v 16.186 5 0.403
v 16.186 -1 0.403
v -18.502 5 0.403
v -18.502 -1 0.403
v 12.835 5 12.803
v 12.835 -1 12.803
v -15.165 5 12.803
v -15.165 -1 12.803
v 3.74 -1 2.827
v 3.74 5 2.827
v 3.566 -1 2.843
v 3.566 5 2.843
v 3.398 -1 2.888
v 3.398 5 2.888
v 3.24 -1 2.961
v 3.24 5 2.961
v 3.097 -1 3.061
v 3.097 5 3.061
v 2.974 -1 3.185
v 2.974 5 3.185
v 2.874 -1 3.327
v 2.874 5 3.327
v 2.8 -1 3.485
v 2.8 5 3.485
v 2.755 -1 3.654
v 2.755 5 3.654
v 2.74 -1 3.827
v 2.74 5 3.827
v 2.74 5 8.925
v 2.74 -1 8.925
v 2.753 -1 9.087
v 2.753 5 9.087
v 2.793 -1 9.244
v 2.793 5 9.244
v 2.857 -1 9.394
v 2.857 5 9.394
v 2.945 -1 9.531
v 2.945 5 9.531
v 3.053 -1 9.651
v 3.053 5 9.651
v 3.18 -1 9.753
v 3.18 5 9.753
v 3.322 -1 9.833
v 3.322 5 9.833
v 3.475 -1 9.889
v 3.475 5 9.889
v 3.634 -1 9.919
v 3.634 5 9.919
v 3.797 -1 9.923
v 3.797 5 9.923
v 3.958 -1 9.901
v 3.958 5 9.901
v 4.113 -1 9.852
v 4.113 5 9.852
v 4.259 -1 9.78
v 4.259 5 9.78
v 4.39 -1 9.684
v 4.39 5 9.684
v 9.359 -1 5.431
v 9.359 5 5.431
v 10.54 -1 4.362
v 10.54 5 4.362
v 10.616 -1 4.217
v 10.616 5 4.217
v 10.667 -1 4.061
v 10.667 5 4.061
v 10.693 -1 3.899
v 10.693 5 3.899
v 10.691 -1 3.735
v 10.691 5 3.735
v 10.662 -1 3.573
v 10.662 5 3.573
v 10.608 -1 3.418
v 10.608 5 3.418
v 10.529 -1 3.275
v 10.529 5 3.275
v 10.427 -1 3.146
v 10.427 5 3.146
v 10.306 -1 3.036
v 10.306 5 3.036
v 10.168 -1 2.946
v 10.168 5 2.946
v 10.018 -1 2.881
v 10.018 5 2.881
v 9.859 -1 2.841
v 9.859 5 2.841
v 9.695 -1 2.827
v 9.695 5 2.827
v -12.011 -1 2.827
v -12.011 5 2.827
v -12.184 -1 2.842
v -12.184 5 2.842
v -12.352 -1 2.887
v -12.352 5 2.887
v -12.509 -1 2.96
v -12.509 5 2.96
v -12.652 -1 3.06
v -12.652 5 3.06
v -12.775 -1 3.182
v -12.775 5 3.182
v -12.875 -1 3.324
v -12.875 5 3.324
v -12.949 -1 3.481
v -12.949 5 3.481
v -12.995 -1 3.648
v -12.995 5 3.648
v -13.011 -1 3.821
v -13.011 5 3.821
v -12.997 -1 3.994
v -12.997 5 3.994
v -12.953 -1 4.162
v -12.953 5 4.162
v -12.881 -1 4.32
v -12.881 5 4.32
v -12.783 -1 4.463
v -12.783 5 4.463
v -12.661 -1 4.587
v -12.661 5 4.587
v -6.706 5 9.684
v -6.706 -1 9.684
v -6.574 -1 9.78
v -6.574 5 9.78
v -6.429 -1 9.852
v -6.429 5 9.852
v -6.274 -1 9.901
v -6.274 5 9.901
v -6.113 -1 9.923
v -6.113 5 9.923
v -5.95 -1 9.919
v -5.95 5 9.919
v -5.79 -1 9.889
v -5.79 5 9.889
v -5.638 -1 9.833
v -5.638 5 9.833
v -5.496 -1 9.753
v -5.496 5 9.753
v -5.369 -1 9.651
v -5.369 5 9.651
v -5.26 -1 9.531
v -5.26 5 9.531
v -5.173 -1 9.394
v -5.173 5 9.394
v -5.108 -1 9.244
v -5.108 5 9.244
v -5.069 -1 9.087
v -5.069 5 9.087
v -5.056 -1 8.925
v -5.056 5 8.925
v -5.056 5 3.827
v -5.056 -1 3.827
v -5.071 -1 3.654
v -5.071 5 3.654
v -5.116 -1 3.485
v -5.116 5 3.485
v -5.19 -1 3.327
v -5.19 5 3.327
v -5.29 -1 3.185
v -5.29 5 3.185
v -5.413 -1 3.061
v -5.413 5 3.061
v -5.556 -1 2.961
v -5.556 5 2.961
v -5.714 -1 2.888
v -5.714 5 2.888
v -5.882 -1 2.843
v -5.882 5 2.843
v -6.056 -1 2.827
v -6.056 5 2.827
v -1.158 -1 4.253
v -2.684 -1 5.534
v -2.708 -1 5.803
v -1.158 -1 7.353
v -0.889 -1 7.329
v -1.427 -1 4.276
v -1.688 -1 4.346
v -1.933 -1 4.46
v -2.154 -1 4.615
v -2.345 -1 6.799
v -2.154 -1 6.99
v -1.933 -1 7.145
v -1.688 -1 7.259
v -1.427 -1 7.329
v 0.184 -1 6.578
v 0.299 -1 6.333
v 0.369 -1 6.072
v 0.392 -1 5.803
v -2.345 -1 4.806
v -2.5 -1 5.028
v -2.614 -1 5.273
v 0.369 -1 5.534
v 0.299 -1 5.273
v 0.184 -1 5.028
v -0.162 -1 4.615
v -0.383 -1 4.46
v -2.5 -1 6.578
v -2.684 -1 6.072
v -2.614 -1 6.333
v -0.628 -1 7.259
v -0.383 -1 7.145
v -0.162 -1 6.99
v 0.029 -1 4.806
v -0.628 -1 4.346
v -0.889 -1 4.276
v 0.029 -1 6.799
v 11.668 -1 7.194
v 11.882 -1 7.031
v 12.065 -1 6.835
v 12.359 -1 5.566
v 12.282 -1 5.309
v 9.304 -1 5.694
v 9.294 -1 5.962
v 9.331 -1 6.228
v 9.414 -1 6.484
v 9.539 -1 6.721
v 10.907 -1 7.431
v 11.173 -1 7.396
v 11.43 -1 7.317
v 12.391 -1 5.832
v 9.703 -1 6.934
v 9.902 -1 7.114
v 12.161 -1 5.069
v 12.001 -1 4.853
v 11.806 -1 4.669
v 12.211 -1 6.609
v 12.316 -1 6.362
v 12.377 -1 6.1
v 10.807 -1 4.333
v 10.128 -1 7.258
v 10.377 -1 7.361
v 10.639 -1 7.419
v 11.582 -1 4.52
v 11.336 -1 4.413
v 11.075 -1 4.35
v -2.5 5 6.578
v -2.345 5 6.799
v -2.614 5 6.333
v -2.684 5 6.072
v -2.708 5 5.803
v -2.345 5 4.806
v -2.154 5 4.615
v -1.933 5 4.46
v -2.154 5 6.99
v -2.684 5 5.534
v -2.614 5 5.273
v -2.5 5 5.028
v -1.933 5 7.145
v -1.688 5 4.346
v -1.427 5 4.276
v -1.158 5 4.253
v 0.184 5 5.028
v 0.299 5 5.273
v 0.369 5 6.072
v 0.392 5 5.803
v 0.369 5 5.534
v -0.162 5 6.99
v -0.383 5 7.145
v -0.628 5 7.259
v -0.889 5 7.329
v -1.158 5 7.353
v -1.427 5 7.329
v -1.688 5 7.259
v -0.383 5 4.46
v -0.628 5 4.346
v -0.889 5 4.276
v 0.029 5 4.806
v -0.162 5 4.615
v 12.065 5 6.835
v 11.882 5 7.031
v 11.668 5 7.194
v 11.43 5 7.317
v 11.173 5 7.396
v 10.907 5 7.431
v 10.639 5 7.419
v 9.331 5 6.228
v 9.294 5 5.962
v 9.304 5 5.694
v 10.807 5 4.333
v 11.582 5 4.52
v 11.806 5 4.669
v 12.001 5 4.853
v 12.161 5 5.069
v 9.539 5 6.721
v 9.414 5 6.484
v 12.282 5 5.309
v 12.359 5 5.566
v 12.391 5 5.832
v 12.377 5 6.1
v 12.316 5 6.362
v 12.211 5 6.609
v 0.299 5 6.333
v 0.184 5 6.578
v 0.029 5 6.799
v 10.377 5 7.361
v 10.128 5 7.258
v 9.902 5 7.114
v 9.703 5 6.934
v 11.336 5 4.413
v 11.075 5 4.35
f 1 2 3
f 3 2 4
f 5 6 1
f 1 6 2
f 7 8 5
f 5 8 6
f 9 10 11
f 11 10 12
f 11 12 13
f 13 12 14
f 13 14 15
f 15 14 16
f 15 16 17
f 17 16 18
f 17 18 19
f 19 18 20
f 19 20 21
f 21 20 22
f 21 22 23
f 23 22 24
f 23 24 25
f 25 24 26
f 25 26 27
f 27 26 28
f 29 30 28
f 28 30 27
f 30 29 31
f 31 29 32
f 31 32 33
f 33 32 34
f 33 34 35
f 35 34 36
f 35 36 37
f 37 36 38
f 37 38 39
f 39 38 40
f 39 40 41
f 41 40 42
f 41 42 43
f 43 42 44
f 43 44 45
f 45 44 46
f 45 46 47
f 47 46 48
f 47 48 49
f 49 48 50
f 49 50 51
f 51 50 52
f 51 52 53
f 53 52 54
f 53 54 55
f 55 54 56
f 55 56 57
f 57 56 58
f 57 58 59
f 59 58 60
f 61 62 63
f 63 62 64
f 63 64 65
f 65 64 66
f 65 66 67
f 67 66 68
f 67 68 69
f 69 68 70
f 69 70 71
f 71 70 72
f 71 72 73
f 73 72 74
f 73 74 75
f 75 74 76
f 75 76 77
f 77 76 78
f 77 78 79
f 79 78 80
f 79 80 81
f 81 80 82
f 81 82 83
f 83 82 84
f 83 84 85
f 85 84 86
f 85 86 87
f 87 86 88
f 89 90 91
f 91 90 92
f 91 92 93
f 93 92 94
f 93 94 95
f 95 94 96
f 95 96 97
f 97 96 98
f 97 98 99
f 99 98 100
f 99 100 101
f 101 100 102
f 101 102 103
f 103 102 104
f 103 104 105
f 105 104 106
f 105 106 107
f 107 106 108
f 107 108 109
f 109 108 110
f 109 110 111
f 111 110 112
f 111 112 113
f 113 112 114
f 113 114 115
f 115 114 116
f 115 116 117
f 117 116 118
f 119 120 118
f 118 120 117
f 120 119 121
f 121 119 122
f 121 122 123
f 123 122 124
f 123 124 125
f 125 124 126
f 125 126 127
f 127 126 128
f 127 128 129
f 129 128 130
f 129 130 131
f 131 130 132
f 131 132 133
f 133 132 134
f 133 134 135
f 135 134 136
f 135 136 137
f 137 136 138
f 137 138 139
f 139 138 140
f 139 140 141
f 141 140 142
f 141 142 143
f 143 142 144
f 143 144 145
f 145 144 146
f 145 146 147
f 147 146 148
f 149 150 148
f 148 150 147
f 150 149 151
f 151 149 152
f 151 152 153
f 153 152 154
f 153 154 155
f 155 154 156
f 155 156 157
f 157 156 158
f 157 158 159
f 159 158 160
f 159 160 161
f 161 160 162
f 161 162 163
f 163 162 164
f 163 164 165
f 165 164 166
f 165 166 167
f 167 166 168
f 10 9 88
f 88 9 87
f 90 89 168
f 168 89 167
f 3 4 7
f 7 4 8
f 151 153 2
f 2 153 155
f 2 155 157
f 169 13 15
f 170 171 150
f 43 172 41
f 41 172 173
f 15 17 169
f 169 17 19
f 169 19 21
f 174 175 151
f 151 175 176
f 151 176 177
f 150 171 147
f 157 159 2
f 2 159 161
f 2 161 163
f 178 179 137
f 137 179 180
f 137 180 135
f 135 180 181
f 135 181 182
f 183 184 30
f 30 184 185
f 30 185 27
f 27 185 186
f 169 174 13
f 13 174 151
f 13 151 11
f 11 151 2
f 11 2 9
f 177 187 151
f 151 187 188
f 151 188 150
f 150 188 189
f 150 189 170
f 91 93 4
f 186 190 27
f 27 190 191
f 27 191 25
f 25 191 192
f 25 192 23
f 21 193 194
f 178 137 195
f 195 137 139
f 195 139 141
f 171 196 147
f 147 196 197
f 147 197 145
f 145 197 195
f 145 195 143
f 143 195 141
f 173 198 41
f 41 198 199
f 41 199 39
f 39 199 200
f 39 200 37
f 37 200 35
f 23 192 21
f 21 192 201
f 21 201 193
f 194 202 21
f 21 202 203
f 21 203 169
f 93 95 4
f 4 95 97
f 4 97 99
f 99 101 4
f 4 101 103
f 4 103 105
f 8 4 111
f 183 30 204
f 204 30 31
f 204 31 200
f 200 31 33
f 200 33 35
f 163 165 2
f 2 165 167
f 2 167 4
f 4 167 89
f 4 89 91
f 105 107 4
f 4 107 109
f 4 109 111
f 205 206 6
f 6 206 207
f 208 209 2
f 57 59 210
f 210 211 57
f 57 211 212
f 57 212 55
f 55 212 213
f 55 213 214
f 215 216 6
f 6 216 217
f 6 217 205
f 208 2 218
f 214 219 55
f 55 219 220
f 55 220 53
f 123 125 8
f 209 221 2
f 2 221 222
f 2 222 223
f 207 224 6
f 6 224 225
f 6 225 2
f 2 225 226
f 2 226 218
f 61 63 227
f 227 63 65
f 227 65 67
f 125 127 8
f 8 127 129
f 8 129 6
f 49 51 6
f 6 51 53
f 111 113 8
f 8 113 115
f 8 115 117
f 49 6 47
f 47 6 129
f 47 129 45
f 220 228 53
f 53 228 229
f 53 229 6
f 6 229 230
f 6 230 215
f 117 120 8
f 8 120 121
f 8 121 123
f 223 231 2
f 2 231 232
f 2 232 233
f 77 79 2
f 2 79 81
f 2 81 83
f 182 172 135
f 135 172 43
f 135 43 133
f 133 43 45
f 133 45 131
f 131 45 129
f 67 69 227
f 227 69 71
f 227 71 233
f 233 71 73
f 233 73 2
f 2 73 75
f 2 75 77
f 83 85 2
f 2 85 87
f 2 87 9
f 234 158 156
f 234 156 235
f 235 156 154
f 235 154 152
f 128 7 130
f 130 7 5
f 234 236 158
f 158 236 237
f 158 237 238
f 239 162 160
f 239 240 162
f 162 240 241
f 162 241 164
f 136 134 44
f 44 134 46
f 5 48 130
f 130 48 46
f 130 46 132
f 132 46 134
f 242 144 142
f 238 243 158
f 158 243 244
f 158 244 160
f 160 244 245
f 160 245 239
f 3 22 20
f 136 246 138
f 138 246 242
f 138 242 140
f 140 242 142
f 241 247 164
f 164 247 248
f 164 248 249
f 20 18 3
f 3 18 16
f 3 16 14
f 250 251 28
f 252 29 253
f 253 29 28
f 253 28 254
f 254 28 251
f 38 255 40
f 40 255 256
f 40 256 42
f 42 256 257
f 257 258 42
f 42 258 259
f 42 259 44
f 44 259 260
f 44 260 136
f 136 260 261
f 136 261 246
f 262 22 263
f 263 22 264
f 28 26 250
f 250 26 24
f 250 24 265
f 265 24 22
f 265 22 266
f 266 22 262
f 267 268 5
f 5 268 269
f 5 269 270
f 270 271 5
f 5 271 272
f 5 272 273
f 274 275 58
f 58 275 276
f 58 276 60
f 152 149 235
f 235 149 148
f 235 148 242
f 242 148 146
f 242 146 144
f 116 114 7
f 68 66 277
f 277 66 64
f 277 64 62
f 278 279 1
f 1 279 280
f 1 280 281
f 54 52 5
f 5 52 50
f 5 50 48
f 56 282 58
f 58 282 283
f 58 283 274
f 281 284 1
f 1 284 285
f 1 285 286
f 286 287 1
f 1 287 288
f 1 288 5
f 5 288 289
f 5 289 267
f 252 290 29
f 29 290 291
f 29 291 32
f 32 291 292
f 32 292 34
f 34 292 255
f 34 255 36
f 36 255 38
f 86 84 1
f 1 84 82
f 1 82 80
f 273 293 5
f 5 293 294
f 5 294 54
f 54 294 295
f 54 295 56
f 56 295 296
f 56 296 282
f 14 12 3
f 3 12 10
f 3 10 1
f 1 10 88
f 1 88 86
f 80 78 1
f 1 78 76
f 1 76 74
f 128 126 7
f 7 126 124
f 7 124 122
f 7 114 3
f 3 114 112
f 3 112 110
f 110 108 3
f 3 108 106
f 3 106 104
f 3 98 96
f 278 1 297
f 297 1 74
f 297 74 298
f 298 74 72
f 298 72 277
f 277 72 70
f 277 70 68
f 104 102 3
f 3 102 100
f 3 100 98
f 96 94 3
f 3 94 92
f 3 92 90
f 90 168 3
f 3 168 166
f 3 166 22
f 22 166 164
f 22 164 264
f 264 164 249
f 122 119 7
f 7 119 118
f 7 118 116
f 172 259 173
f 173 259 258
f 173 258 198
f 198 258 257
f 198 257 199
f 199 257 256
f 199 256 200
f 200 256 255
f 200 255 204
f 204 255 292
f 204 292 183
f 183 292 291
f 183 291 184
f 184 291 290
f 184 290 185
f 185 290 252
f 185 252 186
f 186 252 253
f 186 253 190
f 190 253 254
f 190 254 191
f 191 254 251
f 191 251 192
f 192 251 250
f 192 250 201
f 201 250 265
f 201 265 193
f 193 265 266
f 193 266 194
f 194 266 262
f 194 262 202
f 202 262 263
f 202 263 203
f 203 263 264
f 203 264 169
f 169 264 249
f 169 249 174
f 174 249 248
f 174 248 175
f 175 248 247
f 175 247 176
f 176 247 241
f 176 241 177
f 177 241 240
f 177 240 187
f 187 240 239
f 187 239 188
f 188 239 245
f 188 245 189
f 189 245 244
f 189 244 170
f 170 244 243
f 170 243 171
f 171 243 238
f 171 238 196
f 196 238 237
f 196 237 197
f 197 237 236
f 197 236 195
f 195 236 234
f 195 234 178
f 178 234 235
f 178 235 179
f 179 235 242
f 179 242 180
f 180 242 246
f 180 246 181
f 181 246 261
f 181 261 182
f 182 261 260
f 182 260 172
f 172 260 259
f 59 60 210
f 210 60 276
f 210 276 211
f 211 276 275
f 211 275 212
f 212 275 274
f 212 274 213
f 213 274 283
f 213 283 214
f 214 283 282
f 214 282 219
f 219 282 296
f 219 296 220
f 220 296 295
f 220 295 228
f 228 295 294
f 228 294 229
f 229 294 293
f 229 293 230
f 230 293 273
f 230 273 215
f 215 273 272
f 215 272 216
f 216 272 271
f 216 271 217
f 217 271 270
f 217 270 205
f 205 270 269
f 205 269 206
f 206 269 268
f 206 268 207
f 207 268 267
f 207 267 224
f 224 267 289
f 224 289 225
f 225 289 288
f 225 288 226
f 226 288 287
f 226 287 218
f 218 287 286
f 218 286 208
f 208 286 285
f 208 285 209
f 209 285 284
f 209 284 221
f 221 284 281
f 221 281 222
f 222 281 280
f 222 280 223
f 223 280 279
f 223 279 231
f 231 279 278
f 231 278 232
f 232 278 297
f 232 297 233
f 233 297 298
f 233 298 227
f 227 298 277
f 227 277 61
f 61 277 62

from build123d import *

# Parameters (mm, degrees)
EXTRUDE_1_DEPTH     = 1
EXTRUDE_START       = 5
EXTRUDE_2_DEPTH     = 5
CUT_EXTRUDE_1_REACH = 25.286
SKETCH_2_R          = 1.55
SKETCH_3_R          = 1.55
CUT_EXTRUDE_2_DEPTH = 6


with BuildPart() as part:
    # 草图1 → 凸台-拉伸1 (new body)
    with BuildSketch(Plane(origin=(0, 0, 0), x_dir=(1, 0, 0), z_dir=(0, 1, 0))):
        Polygon((-0.862647581, -12.802774991), (12.834963402, -12.802774991), (16.186049163, -0.402774991), (-18.501877746, -0.402774991), (-15.165036598, -12.802774991), align=None)
        with BuildLine():
            Line((-5.055880083, -8.924536815), (-5.055880083, -3.827423548))
            ThreePointArc((-5.055880083, -3.827423548), (-5.348773301, -3.120316767), (-6.055880083, -2.827423548))
            Line((-6.055880083, -2.827423548), (-12.010923306, -2.827423548))
            ThreePointArc((-12.010923306, -2.827423548), (-12.948929404, -3.480804795), (-12.661184313, -4.587134428))
            Line((-12.661184313, -4.587134428), (-6.70614109, -9.684247695))
            ThreePointArc((-6.70614109, -9.684247695), (-5.63770608, -9.832903758), (-5.055880083, -8.924536815))
        make_face(mode=Mode.SUBTRACT)
        with BuildLine():
            Line((10.34535573, -4.587134428), (4.390312507, -9.684247695))
            ThreePointArc((4.390312507, -9.684247695), (3.321877497, -9.832903758), (2.740051499, -8.924536815))
            Line((2.740051499, -8.924536815), (2.740051499, -3.827423548))
            ThreePointArc((2.740051499, -3.827423548), (3.032944718, -3.120316767), (3.740051499, -2.827423548))
            Line((3.740051499, -2.827423548), (9.695094722, -2.827423548))
            ThreePointArc((9.695094722, -2.827423548), (10.63310082, -3.480804795), (10.34535573, -4.587134428))
        make_face(mode=Mode.SUBTRACT)
    extrude(amount=-EXTRUDE_1_DEPTH)

    # 草图1<8> → 凸台-拉伸2 (add)
    with BuildSketch(Plane(origin=(0, 0, 0), x_dir=(1, 0, 0), z_dir=(0, 1, 0)).offset(EXTRUDE_START)):
        Polygon((-0.862647581, -12.802774991), (12.834963402, -12.802774991), (16.186049163, -0.402774991), (-18.501877746, -0.402774991), (-15.165036598, -12.802774991), align=None)
        with BuildLine():
            Line((-5.055880083, -8.924536815), (-5.055880083, -3.827423548))
            ThreePointArc((-5.055880083, -3.827423548), (-5.348773301, -3.120316767), (-6.055880083, -2.827423548))
            Line((-6.055880083, -2.827423548), (-12.010923306, -2.827423548))
            ThreePointArc((-12.010923306, -2.827423548), (-12.948929404, -3.480804795), (-12.661184313, -4.587134428))
            Line((-12.661184313, -4.587134428), (-6.70614109, -9.684247695))
            ThreePointArc((-6.70614109, -9.684247695), (-5.63770608, -9.832903758), (-5.055880083, -8.924536815))
        make_face(mode=Mode.SUBTRACT)
        with BuildLine():
            Line((10.34535573, -4.587134428), (4.390312507, -9.684247695))
            ThreePointArc((4.390312507, -9.684247695), (3.321877497, -9.832903758), (2.740051499, -8.924536815))
            Line((2.740051499, -8.924536815), (2.740051499, -3.827423548))
            ThreePointArc((2.740051499, -3.827423548), (3.032944718, -3.120316767), (3.740051499, -2.827423548))
            Line((3.740051499, -2.827423548), (9.695094722, -2.827423548))
            ThreePointArc((9.695094722, -2.827423548), (10.63310082, -3.480804795), (10.34535573, -4.587134428))
        make_face(mode=Mode.SUBTRACT)
    extrude(amount=-EXTRUDE_2_DEPTH)

    # 草图2 → 切除-拉伸1 (cut, up to next)
    with BuildSketch(Plane(origin=(0, 5, 0), x_dir=(1, 0, 0), z_dir=(0, 1, 0)), mode=Mode.PRIVATE) as cut_extrude_1_sk1:
        with Locations(Location((-1.157914292, -5.802774991, 0), (0, 0, 270))):
            Circle(SKETCH_2_R)
    cut_extrude_1_tool1 = extrude(cut_extrude_1_sk1.sketch, amount=-CUT_EXTRUDE_1_REACH, mode=Mode.PRIVATE) & part.part
    add(cut_extrude_1_tool1.solids().sort_by_distance((-1.157914, 5, 5.802775))[0], mode=Mode.SUBTRACT)

    # 草图3 → 切除-拉伸2 (cut)
    with BuildSketch(Plane(origin=(0, 5, 0), x_dir=(1, 0, 0), z_dir=(0, 1, 0))):
        with Locations((10.842085708, -5.882306345)):
            Circle(SKETCH_3_R)
    extrude(amount=-CUT_EXTRUDE_2_DEPTH, mode=Mode.SUBTRACT)


solid = part.part
